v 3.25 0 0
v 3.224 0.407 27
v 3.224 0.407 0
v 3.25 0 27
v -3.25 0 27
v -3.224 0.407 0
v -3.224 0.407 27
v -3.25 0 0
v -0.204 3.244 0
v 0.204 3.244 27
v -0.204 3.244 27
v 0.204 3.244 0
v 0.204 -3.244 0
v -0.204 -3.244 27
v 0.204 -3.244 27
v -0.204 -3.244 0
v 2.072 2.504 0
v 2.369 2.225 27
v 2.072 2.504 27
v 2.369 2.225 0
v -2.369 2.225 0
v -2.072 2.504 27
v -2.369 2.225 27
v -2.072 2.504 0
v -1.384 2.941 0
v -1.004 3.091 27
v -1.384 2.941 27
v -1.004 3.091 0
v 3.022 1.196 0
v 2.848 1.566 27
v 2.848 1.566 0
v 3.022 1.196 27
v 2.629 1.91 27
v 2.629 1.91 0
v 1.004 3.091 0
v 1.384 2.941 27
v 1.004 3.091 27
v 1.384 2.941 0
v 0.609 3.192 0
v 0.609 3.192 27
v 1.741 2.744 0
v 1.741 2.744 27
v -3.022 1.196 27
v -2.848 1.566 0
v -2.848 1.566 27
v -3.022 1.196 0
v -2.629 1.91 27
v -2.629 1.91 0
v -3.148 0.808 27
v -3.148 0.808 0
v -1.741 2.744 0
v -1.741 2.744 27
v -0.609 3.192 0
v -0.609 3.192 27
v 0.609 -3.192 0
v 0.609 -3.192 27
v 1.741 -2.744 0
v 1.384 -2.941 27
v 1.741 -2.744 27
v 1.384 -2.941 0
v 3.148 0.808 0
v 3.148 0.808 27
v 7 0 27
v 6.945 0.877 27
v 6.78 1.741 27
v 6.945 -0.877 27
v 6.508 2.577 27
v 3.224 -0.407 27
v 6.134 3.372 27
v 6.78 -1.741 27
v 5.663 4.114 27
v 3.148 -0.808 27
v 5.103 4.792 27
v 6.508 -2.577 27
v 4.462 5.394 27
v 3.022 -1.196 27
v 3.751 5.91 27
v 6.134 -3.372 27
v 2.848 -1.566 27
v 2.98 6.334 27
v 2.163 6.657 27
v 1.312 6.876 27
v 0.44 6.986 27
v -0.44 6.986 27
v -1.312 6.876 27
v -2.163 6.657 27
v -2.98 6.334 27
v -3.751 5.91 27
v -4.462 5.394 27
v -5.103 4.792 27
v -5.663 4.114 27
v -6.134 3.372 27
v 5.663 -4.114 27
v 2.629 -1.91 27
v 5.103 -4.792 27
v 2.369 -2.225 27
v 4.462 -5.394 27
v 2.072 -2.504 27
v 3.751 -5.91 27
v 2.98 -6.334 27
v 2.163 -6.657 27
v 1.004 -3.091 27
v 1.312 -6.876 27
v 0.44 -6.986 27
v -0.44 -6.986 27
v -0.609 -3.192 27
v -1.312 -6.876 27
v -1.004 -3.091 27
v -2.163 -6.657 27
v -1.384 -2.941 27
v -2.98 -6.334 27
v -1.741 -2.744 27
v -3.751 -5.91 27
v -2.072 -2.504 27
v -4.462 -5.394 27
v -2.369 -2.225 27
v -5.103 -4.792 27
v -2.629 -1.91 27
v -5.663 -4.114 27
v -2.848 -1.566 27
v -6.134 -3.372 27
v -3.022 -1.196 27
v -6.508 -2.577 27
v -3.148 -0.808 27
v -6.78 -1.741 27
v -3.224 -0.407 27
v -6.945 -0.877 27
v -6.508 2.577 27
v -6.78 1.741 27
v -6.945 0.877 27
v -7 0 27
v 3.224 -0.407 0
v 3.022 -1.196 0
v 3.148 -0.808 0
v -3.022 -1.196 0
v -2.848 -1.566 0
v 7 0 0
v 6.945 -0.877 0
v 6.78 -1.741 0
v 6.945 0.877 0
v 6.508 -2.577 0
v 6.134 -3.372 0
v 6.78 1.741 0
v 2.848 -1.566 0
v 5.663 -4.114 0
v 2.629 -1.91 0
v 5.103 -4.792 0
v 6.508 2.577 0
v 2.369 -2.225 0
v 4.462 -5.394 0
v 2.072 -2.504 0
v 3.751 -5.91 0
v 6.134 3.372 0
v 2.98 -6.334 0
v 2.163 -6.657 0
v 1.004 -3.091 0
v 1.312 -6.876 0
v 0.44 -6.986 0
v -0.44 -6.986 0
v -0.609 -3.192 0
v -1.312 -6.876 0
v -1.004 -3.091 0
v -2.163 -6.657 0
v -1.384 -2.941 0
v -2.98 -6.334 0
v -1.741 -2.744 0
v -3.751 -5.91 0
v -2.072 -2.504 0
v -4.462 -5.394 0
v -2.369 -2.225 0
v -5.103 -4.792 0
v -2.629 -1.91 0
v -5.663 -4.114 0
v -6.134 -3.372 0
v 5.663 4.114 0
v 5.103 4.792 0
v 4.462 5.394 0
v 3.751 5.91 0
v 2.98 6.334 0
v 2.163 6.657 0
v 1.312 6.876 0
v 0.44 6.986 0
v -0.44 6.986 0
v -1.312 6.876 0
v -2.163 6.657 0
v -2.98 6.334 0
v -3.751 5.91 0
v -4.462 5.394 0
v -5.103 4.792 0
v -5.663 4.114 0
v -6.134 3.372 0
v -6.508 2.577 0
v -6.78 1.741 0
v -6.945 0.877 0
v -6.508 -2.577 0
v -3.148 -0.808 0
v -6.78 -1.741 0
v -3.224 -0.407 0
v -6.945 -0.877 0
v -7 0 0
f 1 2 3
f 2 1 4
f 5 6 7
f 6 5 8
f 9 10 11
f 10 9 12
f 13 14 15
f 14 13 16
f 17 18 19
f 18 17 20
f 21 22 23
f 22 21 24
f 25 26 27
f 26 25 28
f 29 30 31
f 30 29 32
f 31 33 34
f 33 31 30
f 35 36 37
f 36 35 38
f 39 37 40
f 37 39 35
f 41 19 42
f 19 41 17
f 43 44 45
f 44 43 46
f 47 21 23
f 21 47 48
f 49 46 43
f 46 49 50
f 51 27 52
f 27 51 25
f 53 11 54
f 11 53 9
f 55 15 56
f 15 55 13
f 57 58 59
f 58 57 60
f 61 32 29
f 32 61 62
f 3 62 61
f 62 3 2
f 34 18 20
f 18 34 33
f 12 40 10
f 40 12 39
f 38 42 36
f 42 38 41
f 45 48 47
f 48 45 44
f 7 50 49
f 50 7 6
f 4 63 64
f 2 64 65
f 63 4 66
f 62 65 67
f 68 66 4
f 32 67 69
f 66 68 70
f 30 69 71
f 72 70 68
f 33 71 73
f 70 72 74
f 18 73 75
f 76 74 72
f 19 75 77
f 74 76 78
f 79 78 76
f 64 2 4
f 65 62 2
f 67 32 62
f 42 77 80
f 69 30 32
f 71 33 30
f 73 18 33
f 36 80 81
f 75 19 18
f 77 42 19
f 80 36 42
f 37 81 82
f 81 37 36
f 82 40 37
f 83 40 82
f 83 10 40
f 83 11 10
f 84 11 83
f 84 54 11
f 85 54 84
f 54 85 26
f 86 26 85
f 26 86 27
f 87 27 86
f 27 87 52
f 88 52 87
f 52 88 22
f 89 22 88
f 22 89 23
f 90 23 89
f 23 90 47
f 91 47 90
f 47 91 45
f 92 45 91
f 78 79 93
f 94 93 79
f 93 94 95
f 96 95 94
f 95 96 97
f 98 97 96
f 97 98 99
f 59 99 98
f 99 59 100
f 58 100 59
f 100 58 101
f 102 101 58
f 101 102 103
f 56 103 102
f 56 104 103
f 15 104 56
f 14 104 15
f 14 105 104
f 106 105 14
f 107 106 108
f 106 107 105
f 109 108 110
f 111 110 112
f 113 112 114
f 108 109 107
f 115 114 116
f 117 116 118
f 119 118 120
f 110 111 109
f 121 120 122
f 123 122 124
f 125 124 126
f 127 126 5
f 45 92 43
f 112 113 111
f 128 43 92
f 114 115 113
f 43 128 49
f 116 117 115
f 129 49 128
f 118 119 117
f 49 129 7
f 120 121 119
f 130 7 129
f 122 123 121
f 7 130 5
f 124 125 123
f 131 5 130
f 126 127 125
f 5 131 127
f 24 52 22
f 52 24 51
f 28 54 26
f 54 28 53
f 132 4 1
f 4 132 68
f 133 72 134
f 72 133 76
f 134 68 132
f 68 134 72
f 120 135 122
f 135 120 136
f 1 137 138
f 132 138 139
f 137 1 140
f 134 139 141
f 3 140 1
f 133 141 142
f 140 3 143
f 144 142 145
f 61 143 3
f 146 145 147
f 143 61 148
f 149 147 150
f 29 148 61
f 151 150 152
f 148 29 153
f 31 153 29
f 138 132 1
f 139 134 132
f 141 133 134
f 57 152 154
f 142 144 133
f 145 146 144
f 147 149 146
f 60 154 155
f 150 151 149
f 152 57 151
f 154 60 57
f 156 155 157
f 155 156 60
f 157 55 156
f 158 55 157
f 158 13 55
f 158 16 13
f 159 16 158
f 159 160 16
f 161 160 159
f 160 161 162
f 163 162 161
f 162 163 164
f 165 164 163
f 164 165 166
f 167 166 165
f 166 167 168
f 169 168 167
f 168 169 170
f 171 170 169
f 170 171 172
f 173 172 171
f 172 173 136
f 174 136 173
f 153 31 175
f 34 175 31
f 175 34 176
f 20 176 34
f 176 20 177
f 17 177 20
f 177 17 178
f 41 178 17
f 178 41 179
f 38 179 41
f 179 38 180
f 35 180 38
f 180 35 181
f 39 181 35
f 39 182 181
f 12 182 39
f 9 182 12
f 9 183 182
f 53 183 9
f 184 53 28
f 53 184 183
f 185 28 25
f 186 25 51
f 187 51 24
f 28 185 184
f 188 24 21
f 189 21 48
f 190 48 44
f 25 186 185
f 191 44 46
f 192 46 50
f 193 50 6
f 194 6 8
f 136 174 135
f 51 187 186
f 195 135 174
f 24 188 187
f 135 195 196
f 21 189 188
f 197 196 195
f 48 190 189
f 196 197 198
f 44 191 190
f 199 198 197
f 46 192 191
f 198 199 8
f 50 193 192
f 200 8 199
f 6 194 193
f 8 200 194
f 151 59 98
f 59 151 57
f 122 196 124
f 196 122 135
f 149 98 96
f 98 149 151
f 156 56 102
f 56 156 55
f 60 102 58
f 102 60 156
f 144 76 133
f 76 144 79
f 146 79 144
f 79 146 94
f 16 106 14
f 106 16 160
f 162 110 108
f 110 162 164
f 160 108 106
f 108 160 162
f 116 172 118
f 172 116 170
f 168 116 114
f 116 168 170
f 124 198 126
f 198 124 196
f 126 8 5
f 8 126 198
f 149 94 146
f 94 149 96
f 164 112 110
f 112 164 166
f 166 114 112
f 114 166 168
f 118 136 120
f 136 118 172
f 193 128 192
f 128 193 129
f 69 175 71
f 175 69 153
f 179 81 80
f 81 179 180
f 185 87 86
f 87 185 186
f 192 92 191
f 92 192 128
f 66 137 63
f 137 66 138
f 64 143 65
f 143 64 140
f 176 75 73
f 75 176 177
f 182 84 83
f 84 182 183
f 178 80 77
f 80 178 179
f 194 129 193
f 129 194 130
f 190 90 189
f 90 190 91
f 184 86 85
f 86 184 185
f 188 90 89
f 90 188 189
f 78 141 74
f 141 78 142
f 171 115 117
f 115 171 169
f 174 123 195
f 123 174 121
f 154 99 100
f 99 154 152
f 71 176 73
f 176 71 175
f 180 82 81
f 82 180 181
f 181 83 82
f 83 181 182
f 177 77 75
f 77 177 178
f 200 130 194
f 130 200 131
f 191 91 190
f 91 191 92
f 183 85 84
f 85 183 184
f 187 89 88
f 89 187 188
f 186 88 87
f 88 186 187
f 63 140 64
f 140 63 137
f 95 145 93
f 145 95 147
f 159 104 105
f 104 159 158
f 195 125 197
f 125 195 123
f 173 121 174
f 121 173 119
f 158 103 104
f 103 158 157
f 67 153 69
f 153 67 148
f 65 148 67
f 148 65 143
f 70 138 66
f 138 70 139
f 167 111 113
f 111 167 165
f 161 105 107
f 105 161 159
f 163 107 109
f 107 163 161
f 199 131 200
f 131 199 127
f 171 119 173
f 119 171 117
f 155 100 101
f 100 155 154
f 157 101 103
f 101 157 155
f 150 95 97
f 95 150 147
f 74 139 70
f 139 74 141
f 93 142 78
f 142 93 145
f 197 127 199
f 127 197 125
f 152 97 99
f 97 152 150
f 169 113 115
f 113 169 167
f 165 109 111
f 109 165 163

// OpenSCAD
$fn = 50;


difference() {
	union() {
		cylinder(h = 27, r = 7.0000000000);
	}
	union() {
		cylinder(h = 27, r = 3.2500000000);
		cylinder(h = 27, r = 1.8000000000);
		cylinder(h = 27, r = 1.8000000000);
		cylinder(h = 27, r = 1.8000000000);
	}
}
